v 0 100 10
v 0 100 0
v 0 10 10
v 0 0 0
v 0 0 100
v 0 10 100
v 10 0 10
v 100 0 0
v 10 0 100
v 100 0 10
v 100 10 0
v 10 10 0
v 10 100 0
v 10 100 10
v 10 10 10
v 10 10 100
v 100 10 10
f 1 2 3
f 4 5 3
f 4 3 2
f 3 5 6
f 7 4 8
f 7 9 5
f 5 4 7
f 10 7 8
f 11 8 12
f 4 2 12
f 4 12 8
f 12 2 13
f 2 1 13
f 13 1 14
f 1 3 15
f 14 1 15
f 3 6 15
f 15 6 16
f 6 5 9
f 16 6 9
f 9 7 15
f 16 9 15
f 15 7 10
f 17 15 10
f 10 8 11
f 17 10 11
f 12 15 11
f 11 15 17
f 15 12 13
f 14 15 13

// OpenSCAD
// Calibration piece similar to ORMAXIS

length = 100;			// length of each arm
width = 10;			// width of each arm

cube([length,width,width]);
cube([width,length,width]);
cube([width,width,length]);
